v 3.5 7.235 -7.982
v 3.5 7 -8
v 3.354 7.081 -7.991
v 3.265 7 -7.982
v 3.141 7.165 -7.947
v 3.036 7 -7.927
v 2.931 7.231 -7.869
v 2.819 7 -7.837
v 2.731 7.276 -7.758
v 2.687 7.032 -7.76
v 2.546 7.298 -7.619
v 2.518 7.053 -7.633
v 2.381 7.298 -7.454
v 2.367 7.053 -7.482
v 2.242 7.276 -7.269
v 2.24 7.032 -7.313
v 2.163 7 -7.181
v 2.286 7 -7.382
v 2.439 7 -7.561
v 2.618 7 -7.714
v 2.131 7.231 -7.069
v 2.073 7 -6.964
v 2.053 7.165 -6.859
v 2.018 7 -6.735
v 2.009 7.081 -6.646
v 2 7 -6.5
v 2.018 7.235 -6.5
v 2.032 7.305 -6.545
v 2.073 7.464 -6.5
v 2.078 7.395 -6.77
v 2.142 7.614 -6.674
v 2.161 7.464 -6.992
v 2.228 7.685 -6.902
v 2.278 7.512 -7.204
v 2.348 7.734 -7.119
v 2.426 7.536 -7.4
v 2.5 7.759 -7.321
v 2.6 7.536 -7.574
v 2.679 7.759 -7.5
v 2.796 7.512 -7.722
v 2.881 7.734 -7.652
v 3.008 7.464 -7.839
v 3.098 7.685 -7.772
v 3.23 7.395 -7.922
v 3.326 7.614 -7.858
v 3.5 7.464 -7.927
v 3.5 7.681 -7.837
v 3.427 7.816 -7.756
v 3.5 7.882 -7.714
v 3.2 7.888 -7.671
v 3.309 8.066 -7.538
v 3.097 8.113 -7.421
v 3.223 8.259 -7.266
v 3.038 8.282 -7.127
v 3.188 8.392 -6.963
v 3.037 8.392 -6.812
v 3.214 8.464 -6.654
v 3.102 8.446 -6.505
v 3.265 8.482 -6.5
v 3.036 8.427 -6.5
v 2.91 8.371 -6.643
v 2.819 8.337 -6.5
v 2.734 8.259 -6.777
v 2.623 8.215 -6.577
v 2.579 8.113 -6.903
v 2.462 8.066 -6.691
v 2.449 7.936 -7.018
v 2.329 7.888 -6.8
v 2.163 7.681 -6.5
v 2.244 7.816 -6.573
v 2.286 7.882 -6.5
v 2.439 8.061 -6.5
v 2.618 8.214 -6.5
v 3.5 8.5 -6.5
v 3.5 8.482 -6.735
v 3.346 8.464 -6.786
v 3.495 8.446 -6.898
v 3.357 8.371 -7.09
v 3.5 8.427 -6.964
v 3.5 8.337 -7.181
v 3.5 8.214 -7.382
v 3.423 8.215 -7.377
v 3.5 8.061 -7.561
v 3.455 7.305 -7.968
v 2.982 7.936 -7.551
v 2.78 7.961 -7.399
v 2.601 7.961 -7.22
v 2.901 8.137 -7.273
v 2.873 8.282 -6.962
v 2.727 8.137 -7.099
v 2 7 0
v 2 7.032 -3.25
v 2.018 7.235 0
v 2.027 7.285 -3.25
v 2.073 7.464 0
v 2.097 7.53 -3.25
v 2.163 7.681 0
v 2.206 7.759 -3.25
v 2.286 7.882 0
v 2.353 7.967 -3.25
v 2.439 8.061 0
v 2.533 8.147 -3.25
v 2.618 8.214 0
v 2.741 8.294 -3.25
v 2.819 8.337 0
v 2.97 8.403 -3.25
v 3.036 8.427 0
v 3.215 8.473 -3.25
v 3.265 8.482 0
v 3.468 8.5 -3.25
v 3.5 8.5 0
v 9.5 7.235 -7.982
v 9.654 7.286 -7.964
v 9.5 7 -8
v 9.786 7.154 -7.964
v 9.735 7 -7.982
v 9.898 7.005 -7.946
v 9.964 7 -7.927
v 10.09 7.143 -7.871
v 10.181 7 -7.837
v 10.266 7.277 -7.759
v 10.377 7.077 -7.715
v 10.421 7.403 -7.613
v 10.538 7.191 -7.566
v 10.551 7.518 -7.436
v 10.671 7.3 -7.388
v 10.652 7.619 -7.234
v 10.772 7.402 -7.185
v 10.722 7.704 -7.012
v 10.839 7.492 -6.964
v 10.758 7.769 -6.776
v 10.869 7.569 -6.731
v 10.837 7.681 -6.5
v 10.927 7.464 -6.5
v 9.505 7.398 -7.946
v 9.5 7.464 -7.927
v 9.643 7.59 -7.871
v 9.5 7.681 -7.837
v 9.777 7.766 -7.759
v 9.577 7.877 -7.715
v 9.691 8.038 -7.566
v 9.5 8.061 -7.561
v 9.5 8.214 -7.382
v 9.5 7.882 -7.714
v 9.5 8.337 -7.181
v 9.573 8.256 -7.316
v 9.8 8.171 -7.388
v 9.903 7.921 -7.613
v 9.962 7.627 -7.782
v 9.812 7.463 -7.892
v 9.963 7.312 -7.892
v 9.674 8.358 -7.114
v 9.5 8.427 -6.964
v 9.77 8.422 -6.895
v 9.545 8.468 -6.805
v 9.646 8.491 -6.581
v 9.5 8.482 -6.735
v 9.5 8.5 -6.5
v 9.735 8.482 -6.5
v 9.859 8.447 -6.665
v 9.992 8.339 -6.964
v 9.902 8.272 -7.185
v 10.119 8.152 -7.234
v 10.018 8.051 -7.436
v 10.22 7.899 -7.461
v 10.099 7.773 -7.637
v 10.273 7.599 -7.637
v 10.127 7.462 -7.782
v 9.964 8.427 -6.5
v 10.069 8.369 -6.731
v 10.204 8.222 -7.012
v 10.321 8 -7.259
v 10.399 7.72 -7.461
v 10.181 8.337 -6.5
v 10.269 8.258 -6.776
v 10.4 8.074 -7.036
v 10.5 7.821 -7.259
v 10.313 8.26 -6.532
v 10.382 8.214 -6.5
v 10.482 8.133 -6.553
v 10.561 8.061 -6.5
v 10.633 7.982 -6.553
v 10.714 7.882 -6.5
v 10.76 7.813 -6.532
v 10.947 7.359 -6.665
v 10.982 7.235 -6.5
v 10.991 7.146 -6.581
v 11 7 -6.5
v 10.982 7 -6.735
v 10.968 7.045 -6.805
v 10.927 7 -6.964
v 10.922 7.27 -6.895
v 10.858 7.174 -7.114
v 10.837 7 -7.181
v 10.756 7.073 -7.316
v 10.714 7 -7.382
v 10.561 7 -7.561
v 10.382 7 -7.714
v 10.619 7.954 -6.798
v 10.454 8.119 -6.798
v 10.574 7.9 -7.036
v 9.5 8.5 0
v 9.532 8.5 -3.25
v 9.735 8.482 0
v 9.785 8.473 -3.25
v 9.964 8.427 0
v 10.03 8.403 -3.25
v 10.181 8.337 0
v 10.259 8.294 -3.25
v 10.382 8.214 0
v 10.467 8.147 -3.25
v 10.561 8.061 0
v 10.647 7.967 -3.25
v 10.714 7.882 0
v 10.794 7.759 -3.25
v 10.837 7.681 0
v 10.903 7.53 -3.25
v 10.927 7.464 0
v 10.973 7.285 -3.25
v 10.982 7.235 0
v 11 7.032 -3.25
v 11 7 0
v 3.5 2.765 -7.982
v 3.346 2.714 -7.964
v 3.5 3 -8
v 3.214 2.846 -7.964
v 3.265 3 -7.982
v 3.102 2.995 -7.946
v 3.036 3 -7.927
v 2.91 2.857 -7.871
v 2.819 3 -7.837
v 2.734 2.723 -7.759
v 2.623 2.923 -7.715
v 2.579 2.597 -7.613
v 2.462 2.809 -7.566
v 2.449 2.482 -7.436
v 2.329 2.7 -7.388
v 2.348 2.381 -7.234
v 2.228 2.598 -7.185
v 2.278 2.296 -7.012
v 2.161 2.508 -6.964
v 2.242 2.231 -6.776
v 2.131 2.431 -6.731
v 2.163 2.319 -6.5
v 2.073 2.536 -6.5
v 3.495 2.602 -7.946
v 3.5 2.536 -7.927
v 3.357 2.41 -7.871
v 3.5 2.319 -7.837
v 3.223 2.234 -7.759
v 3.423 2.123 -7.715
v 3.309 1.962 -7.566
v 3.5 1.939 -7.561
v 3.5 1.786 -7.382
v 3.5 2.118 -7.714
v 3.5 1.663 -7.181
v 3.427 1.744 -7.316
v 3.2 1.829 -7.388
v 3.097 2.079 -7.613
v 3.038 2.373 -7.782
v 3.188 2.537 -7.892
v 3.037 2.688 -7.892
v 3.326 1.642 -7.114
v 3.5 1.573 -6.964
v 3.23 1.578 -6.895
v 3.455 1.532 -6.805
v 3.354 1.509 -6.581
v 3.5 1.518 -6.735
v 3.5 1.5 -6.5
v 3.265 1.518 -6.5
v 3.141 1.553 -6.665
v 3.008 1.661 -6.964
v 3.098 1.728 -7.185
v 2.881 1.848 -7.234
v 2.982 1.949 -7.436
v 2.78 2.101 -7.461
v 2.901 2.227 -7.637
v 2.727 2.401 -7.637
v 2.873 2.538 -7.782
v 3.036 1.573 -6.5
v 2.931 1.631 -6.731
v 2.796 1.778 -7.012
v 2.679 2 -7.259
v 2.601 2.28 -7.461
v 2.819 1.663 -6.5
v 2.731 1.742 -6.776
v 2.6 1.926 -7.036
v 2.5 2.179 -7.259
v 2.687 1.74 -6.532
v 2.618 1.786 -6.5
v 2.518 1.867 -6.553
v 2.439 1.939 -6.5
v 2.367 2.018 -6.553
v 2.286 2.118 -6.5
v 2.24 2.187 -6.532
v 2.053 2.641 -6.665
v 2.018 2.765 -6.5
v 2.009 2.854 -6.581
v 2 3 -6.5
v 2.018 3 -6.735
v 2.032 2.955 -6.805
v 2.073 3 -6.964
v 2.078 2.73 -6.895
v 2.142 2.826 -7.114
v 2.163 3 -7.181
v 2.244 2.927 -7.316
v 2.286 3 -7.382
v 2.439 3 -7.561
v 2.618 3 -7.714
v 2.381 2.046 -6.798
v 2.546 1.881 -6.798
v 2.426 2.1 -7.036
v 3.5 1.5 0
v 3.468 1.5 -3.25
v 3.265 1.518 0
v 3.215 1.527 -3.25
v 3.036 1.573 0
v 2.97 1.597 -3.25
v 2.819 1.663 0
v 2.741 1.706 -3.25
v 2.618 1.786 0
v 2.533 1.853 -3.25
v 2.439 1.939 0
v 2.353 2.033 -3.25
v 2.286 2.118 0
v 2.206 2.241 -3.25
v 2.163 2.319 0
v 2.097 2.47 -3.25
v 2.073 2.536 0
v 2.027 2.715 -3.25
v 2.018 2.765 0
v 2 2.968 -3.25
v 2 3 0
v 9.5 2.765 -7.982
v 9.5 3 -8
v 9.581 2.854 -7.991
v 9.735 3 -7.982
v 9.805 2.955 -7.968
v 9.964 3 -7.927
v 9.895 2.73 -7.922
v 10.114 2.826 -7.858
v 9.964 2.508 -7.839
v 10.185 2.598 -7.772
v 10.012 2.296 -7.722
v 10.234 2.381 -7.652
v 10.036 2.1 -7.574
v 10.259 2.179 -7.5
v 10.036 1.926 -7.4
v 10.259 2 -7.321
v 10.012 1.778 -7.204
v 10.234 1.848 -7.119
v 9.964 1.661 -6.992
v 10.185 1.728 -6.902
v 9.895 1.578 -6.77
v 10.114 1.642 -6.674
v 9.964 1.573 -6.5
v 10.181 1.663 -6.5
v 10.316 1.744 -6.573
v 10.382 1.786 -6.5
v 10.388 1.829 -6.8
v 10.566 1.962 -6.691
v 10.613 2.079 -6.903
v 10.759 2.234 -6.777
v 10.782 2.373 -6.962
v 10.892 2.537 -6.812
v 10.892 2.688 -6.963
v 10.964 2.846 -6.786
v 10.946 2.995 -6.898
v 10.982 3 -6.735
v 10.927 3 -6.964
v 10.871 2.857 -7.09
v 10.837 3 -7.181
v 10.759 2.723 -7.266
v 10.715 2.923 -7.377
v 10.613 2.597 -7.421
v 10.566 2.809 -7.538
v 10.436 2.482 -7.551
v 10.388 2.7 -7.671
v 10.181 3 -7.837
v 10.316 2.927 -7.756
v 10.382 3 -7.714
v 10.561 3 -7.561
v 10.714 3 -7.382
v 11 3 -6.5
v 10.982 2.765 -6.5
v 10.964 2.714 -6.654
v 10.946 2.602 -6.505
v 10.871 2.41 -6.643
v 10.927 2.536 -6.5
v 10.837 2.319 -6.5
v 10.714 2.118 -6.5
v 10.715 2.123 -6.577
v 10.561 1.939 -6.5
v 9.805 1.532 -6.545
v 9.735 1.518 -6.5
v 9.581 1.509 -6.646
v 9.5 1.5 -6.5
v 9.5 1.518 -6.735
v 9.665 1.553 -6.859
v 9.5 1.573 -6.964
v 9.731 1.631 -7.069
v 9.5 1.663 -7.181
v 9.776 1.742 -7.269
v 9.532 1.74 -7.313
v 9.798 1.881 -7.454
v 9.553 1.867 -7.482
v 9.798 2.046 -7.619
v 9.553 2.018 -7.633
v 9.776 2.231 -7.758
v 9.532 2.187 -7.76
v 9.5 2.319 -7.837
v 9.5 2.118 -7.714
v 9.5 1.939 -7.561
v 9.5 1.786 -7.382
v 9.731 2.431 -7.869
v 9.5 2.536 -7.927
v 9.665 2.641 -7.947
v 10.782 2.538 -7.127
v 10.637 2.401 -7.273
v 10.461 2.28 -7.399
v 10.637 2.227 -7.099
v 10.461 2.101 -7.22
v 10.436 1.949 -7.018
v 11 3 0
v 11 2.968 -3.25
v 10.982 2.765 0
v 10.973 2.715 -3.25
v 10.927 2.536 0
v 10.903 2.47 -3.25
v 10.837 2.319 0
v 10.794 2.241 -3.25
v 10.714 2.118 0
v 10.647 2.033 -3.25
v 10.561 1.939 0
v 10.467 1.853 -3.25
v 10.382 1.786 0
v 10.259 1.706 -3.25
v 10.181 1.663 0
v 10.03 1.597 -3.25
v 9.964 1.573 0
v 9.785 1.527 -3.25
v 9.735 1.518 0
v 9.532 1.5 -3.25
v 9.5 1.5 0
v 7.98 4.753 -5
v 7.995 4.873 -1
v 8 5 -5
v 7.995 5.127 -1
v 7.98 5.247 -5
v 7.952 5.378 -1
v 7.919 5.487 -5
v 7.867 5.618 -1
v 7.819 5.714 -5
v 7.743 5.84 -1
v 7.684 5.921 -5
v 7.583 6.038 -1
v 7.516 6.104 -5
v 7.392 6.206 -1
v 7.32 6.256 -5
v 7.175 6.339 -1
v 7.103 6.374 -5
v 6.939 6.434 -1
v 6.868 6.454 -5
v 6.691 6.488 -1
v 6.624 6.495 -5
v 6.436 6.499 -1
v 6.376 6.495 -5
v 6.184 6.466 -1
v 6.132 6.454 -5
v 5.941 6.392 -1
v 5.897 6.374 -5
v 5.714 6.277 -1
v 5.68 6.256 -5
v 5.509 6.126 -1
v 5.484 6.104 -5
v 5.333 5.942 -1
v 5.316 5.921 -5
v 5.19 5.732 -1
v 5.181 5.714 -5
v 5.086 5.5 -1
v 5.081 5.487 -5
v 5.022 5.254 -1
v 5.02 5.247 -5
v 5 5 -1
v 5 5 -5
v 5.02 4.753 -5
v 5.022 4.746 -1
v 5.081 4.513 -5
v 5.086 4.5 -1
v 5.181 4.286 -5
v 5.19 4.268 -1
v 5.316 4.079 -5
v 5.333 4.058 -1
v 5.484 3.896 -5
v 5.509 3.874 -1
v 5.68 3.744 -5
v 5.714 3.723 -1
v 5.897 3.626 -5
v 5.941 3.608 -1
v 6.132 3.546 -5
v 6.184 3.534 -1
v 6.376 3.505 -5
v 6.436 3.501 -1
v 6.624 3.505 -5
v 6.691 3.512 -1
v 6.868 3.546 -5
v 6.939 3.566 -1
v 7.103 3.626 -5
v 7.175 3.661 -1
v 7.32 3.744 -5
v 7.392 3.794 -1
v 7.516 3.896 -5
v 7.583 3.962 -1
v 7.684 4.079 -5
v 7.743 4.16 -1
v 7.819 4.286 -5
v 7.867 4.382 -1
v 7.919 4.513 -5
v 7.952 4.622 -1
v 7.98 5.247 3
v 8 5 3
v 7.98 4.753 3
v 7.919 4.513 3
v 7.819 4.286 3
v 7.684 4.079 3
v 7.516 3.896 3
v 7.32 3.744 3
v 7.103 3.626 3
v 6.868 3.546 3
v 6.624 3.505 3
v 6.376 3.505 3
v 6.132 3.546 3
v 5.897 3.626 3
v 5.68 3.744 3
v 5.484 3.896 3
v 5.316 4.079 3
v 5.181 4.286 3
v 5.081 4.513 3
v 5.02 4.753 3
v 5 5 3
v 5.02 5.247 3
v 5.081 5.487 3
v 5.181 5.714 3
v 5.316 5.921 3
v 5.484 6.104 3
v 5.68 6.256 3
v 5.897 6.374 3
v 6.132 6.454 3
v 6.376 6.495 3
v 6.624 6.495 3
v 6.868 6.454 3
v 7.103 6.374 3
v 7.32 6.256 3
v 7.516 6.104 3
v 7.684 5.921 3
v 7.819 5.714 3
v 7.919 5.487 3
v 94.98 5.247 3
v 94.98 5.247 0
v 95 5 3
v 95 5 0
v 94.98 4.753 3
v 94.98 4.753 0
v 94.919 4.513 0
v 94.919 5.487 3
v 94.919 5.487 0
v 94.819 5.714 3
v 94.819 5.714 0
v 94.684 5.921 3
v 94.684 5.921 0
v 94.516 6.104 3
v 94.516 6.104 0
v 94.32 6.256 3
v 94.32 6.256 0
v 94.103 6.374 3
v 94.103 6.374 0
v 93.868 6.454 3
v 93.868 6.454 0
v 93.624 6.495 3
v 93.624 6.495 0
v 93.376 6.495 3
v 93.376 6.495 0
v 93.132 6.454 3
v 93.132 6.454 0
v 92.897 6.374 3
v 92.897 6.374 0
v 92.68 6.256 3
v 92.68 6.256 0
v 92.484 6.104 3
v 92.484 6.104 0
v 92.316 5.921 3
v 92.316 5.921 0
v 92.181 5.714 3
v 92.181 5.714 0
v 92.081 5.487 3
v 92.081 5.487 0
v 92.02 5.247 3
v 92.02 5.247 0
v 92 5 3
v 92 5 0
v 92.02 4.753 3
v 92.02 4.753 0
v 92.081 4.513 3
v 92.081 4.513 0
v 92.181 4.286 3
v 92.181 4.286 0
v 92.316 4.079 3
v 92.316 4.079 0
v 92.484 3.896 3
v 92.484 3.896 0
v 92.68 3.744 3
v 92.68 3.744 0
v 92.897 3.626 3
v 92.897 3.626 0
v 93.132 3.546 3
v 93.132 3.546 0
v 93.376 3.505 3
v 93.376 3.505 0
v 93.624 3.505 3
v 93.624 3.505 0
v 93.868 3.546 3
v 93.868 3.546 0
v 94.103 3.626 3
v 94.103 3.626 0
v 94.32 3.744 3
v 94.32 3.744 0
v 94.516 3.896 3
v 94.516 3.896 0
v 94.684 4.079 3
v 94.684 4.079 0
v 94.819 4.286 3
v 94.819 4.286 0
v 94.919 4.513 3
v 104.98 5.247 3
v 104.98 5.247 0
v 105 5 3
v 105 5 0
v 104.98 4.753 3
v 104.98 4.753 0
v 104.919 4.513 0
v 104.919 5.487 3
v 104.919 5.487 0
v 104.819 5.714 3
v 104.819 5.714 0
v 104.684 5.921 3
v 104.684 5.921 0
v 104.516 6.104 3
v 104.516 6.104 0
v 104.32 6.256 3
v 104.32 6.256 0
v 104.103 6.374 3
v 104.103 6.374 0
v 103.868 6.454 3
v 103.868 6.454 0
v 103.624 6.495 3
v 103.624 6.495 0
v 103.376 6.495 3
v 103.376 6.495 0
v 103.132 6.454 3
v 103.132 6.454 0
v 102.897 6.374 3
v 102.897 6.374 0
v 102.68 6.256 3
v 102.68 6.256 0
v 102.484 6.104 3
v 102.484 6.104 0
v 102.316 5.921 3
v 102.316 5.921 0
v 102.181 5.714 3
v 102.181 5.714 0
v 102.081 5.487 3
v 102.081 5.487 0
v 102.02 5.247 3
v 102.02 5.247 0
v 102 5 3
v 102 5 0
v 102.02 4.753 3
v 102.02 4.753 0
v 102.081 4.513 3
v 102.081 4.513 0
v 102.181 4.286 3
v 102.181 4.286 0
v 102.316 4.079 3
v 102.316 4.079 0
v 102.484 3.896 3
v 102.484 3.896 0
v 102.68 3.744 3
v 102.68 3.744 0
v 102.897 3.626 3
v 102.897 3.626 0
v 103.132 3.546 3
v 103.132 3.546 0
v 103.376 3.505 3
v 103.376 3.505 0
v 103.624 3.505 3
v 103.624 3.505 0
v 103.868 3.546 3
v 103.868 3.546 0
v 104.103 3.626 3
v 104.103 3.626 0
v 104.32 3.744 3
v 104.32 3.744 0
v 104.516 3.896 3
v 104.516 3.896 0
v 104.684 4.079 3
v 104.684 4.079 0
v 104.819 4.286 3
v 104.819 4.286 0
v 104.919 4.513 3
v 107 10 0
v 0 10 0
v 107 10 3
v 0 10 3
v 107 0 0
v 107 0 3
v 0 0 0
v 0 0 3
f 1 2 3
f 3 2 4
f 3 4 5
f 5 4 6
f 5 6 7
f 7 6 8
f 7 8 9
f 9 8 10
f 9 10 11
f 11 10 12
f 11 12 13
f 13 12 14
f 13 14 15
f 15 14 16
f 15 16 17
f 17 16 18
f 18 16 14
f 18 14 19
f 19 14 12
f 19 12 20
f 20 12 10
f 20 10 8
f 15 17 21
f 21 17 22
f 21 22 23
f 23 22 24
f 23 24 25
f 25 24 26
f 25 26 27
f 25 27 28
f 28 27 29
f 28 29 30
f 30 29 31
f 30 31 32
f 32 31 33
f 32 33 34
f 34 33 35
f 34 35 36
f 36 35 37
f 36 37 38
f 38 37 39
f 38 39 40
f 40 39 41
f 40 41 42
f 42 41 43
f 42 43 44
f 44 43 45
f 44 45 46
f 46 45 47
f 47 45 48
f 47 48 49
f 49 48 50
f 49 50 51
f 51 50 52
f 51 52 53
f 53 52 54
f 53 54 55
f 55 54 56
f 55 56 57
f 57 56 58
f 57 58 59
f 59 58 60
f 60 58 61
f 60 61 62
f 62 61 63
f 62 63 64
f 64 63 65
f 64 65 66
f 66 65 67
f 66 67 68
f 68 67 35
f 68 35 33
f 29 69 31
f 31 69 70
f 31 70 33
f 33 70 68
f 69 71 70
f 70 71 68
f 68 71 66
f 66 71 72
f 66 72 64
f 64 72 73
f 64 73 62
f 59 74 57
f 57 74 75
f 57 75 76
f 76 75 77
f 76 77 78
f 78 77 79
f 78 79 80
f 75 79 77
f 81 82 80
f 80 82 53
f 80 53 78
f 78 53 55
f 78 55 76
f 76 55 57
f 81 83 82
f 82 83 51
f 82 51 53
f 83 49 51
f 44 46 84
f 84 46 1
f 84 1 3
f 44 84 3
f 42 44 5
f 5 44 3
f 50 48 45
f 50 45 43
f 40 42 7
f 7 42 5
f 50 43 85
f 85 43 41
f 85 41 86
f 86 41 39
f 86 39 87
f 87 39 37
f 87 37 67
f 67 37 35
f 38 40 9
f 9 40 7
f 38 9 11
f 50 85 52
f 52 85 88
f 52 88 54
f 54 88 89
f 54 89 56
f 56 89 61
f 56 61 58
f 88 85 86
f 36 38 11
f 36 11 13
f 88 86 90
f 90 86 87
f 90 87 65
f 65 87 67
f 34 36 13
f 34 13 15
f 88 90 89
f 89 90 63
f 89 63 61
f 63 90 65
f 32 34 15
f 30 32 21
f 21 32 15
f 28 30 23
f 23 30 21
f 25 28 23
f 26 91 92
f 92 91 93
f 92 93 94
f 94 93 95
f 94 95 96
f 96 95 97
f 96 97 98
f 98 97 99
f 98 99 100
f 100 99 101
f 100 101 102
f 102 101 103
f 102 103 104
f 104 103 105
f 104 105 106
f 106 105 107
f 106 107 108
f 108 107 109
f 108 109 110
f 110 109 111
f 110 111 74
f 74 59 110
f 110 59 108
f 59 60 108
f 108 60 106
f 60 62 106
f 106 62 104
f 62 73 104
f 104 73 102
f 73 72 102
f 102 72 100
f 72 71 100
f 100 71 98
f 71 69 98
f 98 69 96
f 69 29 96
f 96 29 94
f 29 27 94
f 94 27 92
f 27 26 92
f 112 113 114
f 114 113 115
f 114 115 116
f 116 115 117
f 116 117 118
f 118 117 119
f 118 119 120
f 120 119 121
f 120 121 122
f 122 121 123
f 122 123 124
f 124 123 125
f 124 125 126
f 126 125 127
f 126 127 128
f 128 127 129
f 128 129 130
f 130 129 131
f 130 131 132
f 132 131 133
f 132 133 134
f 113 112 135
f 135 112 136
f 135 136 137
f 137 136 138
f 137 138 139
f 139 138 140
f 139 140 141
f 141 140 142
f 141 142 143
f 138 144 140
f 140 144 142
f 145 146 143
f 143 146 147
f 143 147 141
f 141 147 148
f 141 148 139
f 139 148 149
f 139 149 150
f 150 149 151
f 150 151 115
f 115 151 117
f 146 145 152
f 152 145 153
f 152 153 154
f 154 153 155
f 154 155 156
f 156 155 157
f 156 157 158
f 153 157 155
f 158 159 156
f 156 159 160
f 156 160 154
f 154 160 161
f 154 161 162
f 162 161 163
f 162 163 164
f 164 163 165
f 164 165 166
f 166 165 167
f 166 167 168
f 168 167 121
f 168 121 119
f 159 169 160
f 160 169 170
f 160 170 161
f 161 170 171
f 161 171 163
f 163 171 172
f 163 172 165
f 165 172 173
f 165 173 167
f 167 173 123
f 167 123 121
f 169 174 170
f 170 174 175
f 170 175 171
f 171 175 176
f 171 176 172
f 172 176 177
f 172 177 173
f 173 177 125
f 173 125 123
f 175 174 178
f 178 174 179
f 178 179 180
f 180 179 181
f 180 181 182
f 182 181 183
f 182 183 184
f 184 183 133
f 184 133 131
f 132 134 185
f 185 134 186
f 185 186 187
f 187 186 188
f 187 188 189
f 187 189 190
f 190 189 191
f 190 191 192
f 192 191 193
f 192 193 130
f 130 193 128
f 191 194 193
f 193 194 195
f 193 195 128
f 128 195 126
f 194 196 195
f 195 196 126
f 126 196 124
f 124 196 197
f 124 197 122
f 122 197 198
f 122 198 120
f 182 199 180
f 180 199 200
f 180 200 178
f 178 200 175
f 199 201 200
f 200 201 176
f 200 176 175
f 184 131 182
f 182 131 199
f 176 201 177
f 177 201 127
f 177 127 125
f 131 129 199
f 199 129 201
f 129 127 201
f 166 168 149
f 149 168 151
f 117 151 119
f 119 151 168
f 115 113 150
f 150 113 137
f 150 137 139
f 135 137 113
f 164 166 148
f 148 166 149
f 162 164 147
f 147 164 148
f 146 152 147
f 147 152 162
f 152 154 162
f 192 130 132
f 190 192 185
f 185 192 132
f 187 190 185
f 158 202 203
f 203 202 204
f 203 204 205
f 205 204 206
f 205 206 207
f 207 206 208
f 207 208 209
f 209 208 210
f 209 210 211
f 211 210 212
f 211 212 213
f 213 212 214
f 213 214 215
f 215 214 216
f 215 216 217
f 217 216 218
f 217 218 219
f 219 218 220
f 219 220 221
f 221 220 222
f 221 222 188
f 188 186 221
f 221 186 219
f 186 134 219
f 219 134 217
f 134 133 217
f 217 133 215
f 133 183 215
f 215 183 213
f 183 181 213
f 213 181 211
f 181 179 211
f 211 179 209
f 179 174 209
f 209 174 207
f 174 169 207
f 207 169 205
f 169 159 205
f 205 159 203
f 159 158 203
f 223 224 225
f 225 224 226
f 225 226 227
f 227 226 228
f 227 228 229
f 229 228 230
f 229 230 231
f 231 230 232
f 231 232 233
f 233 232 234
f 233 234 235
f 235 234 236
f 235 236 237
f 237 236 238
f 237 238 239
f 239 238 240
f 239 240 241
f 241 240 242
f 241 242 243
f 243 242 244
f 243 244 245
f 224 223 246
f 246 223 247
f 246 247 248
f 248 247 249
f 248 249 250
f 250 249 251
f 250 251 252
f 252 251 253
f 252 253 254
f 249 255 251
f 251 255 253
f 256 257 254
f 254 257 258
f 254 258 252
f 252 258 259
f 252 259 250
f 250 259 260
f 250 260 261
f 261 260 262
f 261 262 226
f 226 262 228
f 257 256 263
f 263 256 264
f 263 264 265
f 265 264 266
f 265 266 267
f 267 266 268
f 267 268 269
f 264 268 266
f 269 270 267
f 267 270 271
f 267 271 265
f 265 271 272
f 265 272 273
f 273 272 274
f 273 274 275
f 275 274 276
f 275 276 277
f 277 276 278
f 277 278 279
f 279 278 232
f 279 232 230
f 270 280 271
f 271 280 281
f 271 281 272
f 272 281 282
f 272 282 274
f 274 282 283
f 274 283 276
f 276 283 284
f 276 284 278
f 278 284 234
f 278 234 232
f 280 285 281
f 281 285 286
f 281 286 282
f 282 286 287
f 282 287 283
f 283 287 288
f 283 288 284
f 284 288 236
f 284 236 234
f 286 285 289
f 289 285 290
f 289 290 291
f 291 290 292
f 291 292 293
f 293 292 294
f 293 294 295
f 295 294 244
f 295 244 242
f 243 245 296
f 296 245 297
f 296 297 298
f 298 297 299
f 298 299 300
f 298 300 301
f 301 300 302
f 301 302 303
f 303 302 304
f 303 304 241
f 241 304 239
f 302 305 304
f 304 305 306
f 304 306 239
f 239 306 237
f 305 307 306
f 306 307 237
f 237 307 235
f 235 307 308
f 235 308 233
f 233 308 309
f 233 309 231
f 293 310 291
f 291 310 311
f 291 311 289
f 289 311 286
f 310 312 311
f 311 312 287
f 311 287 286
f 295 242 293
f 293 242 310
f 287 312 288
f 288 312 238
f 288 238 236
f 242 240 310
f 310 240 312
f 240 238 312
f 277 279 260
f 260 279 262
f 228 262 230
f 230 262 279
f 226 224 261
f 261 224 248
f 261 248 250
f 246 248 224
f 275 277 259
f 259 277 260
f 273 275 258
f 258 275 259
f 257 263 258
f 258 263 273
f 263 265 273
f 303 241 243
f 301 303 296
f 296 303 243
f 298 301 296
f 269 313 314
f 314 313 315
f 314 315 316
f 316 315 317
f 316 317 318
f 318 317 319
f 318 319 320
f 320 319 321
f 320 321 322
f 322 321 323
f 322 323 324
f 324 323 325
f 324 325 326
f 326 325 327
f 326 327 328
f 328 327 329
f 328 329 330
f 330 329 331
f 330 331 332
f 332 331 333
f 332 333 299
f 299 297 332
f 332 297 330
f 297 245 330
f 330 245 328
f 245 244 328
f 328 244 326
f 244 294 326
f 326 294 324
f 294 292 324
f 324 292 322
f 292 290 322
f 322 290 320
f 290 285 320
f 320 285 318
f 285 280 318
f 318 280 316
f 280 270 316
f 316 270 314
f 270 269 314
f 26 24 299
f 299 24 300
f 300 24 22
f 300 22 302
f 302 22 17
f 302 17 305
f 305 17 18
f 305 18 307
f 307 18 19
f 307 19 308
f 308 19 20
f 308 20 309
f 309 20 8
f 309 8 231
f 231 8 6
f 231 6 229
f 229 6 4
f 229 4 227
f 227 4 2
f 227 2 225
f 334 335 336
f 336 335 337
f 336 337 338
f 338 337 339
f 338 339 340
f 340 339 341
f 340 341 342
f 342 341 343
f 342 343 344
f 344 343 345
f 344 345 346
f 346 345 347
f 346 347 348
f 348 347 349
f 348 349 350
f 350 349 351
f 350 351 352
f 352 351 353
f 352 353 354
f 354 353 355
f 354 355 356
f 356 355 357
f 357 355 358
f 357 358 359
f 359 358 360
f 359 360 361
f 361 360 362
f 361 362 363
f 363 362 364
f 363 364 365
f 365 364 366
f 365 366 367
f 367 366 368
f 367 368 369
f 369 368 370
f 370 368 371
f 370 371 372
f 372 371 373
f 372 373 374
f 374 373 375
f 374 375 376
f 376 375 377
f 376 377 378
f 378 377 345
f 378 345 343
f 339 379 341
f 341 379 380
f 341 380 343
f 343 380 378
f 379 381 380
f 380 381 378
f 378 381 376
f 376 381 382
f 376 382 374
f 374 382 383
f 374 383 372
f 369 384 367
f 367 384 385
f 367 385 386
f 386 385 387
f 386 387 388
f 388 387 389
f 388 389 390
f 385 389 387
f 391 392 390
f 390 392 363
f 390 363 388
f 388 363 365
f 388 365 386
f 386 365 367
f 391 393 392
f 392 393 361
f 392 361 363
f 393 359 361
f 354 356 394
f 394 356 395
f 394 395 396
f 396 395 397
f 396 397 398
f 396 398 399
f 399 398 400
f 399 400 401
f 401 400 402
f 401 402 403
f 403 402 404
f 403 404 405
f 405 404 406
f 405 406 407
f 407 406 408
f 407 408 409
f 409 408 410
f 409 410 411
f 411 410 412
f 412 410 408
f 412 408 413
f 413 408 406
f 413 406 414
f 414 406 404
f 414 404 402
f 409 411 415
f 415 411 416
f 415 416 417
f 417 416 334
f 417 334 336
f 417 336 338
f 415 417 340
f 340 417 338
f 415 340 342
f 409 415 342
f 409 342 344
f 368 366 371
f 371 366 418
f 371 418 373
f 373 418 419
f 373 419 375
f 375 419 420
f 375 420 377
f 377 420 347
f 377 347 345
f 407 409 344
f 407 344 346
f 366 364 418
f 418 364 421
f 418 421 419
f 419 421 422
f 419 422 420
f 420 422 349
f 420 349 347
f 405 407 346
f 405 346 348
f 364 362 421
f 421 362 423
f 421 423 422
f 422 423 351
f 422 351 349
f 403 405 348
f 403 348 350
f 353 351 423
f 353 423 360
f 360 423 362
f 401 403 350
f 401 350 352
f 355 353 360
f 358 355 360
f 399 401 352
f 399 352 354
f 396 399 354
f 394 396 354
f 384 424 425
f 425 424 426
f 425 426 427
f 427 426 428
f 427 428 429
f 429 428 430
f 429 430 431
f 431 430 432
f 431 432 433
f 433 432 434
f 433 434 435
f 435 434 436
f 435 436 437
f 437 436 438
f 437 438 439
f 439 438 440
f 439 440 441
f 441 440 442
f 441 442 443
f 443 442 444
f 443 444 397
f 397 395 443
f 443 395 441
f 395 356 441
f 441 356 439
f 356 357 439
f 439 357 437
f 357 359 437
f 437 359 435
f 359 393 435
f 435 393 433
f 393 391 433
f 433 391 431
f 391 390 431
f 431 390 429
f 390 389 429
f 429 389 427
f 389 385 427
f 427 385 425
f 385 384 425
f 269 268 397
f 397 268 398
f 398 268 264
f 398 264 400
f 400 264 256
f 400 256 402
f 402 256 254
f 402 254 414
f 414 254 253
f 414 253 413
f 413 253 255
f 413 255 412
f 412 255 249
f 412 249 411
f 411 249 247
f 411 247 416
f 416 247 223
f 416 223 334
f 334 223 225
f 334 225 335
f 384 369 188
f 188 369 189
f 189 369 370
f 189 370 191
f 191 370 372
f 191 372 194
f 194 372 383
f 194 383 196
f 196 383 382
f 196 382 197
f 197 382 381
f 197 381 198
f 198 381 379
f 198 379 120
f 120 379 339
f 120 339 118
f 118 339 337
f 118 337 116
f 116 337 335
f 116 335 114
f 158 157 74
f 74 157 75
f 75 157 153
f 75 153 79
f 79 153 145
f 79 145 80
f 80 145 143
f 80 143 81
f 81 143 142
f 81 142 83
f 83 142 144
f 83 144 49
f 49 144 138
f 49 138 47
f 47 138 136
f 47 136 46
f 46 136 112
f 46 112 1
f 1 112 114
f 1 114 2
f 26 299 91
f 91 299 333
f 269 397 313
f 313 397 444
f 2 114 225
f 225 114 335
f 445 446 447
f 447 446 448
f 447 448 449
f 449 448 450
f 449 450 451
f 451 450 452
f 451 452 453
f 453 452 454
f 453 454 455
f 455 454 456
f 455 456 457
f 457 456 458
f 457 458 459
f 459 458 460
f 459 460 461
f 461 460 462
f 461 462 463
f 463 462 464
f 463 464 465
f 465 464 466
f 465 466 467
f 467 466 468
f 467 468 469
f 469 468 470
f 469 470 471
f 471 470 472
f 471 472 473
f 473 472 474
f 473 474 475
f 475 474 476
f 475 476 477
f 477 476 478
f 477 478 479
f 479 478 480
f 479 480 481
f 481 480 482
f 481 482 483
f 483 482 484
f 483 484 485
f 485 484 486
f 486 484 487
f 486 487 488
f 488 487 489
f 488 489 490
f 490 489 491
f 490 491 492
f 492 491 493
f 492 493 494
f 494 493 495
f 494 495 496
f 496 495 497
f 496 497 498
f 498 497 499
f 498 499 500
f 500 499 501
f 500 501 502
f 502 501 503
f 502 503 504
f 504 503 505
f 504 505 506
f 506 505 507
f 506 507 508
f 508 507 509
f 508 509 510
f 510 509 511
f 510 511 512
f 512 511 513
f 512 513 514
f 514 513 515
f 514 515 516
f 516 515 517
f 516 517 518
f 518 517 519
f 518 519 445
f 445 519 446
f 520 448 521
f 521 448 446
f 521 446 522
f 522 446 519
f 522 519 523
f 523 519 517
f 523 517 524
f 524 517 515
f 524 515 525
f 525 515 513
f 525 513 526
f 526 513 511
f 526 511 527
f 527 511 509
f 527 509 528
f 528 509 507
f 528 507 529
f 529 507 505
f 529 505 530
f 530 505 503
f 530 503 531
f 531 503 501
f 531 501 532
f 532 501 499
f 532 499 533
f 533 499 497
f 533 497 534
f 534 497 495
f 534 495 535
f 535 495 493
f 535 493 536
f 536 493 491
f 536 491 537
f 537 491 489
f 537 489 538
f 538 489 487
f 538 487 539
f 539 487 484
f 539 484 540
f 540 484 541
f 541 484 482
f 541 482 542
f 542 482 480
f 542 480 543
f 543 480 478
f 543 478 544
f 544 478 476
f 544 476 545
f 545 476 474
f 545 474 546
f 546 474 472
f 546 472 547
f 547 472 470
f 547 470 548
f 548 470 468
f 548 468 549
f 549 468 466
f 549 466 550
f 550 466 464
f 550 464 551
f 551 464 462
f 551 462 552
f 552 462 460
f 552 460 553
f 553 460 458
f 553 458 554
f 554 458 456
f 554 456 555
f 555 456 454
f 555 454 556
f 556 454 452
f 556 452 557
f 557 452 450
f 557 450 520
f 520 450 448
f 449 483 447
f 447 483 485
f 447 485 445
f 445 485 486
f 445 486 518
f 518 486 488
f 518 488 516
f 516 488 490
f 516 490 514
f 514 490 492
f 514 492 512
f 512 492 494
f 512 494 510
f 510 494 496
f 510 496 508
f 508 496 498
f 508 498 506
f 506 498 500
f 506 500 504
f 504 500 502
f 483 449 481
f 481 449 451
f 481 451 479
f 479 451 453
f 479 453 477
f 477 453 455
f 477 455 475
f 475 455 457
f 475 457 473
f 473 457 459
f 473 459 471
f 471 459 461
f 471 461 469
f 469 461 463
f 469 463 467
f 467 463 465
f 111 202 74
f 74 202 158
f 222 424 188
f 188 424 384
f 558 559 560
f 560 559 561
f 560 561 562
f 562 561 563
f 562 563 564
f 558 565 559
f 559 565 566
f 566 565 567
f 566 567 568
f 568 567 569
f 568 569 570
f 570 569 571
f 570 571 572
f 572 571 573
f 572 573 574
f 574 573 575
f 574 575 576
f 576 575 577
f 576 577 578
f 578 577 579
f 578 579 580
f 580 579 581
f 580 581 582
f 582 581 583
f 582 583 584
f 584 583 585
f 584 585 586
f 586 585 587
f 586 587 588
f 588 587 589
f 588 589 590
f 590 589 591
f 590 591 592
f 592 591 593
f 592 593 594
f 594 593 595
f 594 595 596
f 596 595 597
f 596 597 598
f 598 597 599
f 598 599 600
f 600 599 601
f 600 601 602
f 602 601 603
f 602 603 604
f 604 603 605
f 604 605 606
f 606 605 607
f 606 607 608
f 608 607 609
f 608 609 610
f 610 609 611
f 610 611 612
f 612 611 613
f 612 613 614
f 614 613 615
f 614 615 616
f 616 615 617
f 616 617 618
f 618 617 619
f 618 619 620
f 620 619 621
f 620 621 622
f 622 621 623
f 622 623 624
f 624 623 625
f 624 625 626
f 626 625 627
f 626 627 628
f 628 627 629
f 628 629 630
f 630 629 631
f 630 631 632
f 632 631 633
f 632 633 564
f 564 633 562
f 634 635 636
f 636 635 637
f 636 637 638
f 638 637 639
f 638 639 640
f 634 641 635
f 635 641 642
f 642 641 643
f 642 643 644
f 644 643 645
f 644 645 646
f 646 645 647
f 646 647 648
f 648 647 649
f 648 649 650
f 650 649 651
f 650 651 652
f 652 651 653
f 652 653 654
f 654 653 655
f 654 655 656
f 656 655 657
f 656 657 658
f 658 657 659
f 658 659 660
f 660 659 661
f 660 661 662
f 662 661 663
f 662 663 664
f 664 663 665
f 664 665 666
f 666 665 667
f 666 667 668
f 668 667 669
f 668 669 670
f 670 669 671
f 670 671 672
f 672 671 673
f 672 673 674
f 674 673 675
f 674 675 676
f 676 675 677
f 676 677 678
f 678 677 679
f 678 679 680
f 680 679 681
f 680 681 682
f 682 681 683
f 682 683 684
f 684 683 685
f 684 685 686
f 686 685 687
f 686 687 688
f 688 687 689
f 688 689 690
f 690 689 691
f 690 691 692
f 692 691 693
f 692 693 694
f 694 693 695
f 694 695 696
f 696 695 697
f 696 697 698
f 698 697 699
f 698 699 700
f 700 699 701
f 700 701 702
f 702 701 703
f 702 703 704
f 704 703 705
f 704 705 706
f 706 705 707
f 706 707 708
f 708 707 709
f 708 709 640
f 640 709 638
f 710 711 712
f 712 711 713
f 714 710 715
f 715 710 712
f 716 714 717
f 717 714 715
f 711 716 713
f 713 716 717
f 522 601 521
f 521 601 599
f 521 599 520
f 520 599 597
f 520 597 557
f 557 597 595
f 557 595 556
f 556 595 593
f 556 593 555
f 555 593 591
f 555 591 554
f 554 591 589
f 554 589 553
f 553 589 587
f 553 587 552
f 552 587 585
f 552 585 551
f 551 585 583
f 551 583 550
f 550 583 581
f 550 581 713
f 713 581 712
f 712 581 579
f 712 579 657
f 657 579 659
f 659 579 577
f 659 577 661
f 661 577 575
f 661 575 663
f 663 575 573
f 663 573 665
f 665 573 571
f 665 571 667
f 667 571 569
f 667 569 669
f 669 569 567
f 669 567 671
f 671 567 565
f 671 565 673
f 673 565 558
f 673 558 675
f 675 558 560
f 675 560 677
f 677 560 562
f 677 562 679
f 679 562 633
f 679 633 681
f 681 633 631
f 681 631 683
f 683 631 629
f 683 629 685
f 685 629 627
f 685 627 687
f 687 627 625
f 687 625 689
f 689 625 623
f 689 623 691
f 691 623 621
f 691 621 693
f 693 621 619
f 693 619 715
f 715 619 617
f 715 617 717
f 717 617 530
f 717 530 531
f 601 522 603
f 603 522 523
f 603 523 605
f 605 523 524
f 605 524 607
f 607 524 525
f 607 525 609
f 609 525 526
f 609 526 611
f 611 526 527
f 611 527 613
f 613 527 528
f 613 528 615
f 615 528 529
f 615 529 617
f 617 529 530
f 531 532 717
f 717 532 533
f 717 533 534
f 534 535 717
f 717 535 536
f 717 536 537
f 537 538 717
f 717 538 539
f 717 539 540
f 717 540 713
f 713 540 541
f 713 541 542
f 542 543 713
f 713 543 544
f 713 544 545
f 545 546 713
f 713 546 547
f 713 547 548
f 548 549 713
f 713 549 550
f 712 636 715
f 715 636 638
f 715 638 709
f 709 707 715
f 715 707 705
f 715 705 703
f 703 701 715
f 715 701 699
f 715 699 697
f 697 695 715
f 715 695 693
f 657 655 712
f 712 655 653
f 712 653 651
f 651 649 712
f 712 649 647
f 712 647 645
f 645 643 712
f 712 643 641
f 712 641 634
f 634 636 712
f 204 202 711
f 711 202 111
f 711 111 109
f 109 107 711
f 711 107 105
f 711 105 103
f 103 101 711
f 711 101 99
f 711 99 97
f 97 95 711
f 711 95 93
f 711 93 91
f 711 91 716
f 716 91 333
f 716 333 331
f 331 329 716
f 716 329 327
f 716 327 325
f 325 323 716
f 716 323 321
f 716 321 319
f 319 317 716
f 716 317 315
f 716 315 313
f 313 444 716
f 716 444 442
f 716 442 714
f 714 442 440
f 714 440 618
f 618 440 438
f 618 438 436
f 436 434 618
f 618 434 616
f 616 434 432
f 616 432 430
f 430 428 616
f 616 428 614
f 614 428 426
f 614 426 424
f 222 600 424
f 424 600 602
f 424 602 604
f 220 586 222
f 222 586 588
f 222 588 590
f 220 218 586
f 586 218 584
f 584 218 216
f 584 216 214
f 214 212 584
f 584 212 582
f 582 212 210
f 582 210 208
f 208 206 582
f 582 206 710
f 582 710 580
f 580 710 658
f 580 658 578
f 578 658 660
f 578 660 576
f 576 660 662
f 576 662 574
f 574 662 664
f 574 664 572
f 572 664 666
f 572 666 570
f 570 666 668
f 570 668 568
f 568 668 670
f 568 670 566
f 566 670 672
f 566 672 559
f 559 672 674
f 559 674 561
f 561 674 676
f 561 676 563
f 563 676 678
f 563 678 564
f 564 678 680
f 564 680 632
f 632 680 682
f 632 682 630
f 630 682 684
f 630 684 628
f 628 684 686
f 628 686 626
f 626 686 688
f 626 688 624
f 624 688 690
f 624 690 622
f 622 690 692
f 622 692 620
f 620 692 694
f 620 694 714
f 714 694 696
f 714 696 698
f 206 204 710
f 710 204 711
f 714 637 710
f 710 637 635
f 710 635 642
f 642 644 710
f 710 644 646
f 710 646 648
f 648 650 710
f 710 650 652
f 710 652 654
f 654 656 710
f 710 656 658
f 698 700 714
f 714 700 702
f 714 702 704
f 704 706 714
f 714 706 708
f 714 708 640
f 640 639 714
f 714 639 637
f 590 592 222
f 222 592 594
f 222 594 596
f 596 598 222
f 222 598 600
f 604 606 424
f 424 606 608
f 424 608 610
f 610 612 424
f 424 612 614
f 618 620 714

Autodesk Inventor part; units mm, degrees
ref_plane "YZ Plane" through (0, 0, 0) normal (1, 0, 0) x (0, 1, 0)
ref_plane "XZ Plane" through (0, 0, 0) normal (0, 1, 0) x (-1, 0, 0)
ref_plane "XY Plane" through (0, 0, 0) normal (0, 0, 1) x (1, 0, 0)
sketch "sketch" plane through (0, 0, 0) normal (0, 0, 1) x (1, 0, 0)
  line L0 (-21.4, 0) -> (128.4, 0) construction
  line L1 (0, -2) -> (0, 12) construction
  line L2 (0, 10) -> (107, 10)
  line L3 (107, 10) -> (107, 0)
  line L4 (107, 0) -> (0, 0)
  line L5 (0, 0) -> (0, 10)
  line L6 (2, 8.5) -> (11, 8.5)
  line L7 (11, 8.5) -> (11, 1.5)
  line L8 (11, 1.5) -> (2, 1.5)
  line L9 (2, 1.5) -> (2, 8.5)
  circle A0 centre (93.5, 5) radius 1.5
  circle A1 centre (103.5, 5) radius 1.5
  dimension "d0" = 10
  dimension "d1" = 107
  dimension "d2" = 9
  dimension "d3" = 7
  dimension "d4" = 1.5
  dimension "d5" = 2
  dimension "d6" = 3
  dimension "d7" = 3
  dimension "d8" = 3.5
  dimension "d9" = 10
  dimension "d10" = 5
  dimension "d11" = 5
extrude "body" add sketch "sketch" along normal blind 3 contours L2 L3 L4 L5 | L6 L7 L8 L9
extrude "button" add sketch "sketch" against normal blind 8 contours L6 L7 L8 L9
sketch "button_sketch" plane through (0, 0, 3) normal (0, 0, 1) x (1, 0, 0)
  line L0 (11, 1.5) -> (2, 1.5) projected
  line L1 (11, 8.5) -> (2, 8.5) projected
  line L2 (2, 8.5) -> (2, 1.5) projected
  line L3 (11, 1.5) -> (11, 8.5) projected
  circle A0 centre (6.5, 5) radius 1.5
  line L4 (107, 10) -> (0, 10) projected
  point P0 (0, 0)
  dimension "d16" = 3
  dimension "d17" = 5
  dimension "d18" = 4.5
extrude "bolt" cut sketch "button_sketch" against normal blind 8 contours A0
fillet "모깎기1" radius 1.5 8 edges at (6.5, 1.5, -8) (2, 5, -8) (11, 5, -8) (6.5, 8.5, -8) (11, 1.5, -4) (2, 1.5, -4) (2, 8.5, -4) (11, 8.5, -4)
equation "\"d4\" = -0.5 * d3 + 0.5 * d0"
equation "\"d17\" = 0.5 * d0"
equation "\"d18\" = 0.5 * d2"
properties part number "button_bar"
